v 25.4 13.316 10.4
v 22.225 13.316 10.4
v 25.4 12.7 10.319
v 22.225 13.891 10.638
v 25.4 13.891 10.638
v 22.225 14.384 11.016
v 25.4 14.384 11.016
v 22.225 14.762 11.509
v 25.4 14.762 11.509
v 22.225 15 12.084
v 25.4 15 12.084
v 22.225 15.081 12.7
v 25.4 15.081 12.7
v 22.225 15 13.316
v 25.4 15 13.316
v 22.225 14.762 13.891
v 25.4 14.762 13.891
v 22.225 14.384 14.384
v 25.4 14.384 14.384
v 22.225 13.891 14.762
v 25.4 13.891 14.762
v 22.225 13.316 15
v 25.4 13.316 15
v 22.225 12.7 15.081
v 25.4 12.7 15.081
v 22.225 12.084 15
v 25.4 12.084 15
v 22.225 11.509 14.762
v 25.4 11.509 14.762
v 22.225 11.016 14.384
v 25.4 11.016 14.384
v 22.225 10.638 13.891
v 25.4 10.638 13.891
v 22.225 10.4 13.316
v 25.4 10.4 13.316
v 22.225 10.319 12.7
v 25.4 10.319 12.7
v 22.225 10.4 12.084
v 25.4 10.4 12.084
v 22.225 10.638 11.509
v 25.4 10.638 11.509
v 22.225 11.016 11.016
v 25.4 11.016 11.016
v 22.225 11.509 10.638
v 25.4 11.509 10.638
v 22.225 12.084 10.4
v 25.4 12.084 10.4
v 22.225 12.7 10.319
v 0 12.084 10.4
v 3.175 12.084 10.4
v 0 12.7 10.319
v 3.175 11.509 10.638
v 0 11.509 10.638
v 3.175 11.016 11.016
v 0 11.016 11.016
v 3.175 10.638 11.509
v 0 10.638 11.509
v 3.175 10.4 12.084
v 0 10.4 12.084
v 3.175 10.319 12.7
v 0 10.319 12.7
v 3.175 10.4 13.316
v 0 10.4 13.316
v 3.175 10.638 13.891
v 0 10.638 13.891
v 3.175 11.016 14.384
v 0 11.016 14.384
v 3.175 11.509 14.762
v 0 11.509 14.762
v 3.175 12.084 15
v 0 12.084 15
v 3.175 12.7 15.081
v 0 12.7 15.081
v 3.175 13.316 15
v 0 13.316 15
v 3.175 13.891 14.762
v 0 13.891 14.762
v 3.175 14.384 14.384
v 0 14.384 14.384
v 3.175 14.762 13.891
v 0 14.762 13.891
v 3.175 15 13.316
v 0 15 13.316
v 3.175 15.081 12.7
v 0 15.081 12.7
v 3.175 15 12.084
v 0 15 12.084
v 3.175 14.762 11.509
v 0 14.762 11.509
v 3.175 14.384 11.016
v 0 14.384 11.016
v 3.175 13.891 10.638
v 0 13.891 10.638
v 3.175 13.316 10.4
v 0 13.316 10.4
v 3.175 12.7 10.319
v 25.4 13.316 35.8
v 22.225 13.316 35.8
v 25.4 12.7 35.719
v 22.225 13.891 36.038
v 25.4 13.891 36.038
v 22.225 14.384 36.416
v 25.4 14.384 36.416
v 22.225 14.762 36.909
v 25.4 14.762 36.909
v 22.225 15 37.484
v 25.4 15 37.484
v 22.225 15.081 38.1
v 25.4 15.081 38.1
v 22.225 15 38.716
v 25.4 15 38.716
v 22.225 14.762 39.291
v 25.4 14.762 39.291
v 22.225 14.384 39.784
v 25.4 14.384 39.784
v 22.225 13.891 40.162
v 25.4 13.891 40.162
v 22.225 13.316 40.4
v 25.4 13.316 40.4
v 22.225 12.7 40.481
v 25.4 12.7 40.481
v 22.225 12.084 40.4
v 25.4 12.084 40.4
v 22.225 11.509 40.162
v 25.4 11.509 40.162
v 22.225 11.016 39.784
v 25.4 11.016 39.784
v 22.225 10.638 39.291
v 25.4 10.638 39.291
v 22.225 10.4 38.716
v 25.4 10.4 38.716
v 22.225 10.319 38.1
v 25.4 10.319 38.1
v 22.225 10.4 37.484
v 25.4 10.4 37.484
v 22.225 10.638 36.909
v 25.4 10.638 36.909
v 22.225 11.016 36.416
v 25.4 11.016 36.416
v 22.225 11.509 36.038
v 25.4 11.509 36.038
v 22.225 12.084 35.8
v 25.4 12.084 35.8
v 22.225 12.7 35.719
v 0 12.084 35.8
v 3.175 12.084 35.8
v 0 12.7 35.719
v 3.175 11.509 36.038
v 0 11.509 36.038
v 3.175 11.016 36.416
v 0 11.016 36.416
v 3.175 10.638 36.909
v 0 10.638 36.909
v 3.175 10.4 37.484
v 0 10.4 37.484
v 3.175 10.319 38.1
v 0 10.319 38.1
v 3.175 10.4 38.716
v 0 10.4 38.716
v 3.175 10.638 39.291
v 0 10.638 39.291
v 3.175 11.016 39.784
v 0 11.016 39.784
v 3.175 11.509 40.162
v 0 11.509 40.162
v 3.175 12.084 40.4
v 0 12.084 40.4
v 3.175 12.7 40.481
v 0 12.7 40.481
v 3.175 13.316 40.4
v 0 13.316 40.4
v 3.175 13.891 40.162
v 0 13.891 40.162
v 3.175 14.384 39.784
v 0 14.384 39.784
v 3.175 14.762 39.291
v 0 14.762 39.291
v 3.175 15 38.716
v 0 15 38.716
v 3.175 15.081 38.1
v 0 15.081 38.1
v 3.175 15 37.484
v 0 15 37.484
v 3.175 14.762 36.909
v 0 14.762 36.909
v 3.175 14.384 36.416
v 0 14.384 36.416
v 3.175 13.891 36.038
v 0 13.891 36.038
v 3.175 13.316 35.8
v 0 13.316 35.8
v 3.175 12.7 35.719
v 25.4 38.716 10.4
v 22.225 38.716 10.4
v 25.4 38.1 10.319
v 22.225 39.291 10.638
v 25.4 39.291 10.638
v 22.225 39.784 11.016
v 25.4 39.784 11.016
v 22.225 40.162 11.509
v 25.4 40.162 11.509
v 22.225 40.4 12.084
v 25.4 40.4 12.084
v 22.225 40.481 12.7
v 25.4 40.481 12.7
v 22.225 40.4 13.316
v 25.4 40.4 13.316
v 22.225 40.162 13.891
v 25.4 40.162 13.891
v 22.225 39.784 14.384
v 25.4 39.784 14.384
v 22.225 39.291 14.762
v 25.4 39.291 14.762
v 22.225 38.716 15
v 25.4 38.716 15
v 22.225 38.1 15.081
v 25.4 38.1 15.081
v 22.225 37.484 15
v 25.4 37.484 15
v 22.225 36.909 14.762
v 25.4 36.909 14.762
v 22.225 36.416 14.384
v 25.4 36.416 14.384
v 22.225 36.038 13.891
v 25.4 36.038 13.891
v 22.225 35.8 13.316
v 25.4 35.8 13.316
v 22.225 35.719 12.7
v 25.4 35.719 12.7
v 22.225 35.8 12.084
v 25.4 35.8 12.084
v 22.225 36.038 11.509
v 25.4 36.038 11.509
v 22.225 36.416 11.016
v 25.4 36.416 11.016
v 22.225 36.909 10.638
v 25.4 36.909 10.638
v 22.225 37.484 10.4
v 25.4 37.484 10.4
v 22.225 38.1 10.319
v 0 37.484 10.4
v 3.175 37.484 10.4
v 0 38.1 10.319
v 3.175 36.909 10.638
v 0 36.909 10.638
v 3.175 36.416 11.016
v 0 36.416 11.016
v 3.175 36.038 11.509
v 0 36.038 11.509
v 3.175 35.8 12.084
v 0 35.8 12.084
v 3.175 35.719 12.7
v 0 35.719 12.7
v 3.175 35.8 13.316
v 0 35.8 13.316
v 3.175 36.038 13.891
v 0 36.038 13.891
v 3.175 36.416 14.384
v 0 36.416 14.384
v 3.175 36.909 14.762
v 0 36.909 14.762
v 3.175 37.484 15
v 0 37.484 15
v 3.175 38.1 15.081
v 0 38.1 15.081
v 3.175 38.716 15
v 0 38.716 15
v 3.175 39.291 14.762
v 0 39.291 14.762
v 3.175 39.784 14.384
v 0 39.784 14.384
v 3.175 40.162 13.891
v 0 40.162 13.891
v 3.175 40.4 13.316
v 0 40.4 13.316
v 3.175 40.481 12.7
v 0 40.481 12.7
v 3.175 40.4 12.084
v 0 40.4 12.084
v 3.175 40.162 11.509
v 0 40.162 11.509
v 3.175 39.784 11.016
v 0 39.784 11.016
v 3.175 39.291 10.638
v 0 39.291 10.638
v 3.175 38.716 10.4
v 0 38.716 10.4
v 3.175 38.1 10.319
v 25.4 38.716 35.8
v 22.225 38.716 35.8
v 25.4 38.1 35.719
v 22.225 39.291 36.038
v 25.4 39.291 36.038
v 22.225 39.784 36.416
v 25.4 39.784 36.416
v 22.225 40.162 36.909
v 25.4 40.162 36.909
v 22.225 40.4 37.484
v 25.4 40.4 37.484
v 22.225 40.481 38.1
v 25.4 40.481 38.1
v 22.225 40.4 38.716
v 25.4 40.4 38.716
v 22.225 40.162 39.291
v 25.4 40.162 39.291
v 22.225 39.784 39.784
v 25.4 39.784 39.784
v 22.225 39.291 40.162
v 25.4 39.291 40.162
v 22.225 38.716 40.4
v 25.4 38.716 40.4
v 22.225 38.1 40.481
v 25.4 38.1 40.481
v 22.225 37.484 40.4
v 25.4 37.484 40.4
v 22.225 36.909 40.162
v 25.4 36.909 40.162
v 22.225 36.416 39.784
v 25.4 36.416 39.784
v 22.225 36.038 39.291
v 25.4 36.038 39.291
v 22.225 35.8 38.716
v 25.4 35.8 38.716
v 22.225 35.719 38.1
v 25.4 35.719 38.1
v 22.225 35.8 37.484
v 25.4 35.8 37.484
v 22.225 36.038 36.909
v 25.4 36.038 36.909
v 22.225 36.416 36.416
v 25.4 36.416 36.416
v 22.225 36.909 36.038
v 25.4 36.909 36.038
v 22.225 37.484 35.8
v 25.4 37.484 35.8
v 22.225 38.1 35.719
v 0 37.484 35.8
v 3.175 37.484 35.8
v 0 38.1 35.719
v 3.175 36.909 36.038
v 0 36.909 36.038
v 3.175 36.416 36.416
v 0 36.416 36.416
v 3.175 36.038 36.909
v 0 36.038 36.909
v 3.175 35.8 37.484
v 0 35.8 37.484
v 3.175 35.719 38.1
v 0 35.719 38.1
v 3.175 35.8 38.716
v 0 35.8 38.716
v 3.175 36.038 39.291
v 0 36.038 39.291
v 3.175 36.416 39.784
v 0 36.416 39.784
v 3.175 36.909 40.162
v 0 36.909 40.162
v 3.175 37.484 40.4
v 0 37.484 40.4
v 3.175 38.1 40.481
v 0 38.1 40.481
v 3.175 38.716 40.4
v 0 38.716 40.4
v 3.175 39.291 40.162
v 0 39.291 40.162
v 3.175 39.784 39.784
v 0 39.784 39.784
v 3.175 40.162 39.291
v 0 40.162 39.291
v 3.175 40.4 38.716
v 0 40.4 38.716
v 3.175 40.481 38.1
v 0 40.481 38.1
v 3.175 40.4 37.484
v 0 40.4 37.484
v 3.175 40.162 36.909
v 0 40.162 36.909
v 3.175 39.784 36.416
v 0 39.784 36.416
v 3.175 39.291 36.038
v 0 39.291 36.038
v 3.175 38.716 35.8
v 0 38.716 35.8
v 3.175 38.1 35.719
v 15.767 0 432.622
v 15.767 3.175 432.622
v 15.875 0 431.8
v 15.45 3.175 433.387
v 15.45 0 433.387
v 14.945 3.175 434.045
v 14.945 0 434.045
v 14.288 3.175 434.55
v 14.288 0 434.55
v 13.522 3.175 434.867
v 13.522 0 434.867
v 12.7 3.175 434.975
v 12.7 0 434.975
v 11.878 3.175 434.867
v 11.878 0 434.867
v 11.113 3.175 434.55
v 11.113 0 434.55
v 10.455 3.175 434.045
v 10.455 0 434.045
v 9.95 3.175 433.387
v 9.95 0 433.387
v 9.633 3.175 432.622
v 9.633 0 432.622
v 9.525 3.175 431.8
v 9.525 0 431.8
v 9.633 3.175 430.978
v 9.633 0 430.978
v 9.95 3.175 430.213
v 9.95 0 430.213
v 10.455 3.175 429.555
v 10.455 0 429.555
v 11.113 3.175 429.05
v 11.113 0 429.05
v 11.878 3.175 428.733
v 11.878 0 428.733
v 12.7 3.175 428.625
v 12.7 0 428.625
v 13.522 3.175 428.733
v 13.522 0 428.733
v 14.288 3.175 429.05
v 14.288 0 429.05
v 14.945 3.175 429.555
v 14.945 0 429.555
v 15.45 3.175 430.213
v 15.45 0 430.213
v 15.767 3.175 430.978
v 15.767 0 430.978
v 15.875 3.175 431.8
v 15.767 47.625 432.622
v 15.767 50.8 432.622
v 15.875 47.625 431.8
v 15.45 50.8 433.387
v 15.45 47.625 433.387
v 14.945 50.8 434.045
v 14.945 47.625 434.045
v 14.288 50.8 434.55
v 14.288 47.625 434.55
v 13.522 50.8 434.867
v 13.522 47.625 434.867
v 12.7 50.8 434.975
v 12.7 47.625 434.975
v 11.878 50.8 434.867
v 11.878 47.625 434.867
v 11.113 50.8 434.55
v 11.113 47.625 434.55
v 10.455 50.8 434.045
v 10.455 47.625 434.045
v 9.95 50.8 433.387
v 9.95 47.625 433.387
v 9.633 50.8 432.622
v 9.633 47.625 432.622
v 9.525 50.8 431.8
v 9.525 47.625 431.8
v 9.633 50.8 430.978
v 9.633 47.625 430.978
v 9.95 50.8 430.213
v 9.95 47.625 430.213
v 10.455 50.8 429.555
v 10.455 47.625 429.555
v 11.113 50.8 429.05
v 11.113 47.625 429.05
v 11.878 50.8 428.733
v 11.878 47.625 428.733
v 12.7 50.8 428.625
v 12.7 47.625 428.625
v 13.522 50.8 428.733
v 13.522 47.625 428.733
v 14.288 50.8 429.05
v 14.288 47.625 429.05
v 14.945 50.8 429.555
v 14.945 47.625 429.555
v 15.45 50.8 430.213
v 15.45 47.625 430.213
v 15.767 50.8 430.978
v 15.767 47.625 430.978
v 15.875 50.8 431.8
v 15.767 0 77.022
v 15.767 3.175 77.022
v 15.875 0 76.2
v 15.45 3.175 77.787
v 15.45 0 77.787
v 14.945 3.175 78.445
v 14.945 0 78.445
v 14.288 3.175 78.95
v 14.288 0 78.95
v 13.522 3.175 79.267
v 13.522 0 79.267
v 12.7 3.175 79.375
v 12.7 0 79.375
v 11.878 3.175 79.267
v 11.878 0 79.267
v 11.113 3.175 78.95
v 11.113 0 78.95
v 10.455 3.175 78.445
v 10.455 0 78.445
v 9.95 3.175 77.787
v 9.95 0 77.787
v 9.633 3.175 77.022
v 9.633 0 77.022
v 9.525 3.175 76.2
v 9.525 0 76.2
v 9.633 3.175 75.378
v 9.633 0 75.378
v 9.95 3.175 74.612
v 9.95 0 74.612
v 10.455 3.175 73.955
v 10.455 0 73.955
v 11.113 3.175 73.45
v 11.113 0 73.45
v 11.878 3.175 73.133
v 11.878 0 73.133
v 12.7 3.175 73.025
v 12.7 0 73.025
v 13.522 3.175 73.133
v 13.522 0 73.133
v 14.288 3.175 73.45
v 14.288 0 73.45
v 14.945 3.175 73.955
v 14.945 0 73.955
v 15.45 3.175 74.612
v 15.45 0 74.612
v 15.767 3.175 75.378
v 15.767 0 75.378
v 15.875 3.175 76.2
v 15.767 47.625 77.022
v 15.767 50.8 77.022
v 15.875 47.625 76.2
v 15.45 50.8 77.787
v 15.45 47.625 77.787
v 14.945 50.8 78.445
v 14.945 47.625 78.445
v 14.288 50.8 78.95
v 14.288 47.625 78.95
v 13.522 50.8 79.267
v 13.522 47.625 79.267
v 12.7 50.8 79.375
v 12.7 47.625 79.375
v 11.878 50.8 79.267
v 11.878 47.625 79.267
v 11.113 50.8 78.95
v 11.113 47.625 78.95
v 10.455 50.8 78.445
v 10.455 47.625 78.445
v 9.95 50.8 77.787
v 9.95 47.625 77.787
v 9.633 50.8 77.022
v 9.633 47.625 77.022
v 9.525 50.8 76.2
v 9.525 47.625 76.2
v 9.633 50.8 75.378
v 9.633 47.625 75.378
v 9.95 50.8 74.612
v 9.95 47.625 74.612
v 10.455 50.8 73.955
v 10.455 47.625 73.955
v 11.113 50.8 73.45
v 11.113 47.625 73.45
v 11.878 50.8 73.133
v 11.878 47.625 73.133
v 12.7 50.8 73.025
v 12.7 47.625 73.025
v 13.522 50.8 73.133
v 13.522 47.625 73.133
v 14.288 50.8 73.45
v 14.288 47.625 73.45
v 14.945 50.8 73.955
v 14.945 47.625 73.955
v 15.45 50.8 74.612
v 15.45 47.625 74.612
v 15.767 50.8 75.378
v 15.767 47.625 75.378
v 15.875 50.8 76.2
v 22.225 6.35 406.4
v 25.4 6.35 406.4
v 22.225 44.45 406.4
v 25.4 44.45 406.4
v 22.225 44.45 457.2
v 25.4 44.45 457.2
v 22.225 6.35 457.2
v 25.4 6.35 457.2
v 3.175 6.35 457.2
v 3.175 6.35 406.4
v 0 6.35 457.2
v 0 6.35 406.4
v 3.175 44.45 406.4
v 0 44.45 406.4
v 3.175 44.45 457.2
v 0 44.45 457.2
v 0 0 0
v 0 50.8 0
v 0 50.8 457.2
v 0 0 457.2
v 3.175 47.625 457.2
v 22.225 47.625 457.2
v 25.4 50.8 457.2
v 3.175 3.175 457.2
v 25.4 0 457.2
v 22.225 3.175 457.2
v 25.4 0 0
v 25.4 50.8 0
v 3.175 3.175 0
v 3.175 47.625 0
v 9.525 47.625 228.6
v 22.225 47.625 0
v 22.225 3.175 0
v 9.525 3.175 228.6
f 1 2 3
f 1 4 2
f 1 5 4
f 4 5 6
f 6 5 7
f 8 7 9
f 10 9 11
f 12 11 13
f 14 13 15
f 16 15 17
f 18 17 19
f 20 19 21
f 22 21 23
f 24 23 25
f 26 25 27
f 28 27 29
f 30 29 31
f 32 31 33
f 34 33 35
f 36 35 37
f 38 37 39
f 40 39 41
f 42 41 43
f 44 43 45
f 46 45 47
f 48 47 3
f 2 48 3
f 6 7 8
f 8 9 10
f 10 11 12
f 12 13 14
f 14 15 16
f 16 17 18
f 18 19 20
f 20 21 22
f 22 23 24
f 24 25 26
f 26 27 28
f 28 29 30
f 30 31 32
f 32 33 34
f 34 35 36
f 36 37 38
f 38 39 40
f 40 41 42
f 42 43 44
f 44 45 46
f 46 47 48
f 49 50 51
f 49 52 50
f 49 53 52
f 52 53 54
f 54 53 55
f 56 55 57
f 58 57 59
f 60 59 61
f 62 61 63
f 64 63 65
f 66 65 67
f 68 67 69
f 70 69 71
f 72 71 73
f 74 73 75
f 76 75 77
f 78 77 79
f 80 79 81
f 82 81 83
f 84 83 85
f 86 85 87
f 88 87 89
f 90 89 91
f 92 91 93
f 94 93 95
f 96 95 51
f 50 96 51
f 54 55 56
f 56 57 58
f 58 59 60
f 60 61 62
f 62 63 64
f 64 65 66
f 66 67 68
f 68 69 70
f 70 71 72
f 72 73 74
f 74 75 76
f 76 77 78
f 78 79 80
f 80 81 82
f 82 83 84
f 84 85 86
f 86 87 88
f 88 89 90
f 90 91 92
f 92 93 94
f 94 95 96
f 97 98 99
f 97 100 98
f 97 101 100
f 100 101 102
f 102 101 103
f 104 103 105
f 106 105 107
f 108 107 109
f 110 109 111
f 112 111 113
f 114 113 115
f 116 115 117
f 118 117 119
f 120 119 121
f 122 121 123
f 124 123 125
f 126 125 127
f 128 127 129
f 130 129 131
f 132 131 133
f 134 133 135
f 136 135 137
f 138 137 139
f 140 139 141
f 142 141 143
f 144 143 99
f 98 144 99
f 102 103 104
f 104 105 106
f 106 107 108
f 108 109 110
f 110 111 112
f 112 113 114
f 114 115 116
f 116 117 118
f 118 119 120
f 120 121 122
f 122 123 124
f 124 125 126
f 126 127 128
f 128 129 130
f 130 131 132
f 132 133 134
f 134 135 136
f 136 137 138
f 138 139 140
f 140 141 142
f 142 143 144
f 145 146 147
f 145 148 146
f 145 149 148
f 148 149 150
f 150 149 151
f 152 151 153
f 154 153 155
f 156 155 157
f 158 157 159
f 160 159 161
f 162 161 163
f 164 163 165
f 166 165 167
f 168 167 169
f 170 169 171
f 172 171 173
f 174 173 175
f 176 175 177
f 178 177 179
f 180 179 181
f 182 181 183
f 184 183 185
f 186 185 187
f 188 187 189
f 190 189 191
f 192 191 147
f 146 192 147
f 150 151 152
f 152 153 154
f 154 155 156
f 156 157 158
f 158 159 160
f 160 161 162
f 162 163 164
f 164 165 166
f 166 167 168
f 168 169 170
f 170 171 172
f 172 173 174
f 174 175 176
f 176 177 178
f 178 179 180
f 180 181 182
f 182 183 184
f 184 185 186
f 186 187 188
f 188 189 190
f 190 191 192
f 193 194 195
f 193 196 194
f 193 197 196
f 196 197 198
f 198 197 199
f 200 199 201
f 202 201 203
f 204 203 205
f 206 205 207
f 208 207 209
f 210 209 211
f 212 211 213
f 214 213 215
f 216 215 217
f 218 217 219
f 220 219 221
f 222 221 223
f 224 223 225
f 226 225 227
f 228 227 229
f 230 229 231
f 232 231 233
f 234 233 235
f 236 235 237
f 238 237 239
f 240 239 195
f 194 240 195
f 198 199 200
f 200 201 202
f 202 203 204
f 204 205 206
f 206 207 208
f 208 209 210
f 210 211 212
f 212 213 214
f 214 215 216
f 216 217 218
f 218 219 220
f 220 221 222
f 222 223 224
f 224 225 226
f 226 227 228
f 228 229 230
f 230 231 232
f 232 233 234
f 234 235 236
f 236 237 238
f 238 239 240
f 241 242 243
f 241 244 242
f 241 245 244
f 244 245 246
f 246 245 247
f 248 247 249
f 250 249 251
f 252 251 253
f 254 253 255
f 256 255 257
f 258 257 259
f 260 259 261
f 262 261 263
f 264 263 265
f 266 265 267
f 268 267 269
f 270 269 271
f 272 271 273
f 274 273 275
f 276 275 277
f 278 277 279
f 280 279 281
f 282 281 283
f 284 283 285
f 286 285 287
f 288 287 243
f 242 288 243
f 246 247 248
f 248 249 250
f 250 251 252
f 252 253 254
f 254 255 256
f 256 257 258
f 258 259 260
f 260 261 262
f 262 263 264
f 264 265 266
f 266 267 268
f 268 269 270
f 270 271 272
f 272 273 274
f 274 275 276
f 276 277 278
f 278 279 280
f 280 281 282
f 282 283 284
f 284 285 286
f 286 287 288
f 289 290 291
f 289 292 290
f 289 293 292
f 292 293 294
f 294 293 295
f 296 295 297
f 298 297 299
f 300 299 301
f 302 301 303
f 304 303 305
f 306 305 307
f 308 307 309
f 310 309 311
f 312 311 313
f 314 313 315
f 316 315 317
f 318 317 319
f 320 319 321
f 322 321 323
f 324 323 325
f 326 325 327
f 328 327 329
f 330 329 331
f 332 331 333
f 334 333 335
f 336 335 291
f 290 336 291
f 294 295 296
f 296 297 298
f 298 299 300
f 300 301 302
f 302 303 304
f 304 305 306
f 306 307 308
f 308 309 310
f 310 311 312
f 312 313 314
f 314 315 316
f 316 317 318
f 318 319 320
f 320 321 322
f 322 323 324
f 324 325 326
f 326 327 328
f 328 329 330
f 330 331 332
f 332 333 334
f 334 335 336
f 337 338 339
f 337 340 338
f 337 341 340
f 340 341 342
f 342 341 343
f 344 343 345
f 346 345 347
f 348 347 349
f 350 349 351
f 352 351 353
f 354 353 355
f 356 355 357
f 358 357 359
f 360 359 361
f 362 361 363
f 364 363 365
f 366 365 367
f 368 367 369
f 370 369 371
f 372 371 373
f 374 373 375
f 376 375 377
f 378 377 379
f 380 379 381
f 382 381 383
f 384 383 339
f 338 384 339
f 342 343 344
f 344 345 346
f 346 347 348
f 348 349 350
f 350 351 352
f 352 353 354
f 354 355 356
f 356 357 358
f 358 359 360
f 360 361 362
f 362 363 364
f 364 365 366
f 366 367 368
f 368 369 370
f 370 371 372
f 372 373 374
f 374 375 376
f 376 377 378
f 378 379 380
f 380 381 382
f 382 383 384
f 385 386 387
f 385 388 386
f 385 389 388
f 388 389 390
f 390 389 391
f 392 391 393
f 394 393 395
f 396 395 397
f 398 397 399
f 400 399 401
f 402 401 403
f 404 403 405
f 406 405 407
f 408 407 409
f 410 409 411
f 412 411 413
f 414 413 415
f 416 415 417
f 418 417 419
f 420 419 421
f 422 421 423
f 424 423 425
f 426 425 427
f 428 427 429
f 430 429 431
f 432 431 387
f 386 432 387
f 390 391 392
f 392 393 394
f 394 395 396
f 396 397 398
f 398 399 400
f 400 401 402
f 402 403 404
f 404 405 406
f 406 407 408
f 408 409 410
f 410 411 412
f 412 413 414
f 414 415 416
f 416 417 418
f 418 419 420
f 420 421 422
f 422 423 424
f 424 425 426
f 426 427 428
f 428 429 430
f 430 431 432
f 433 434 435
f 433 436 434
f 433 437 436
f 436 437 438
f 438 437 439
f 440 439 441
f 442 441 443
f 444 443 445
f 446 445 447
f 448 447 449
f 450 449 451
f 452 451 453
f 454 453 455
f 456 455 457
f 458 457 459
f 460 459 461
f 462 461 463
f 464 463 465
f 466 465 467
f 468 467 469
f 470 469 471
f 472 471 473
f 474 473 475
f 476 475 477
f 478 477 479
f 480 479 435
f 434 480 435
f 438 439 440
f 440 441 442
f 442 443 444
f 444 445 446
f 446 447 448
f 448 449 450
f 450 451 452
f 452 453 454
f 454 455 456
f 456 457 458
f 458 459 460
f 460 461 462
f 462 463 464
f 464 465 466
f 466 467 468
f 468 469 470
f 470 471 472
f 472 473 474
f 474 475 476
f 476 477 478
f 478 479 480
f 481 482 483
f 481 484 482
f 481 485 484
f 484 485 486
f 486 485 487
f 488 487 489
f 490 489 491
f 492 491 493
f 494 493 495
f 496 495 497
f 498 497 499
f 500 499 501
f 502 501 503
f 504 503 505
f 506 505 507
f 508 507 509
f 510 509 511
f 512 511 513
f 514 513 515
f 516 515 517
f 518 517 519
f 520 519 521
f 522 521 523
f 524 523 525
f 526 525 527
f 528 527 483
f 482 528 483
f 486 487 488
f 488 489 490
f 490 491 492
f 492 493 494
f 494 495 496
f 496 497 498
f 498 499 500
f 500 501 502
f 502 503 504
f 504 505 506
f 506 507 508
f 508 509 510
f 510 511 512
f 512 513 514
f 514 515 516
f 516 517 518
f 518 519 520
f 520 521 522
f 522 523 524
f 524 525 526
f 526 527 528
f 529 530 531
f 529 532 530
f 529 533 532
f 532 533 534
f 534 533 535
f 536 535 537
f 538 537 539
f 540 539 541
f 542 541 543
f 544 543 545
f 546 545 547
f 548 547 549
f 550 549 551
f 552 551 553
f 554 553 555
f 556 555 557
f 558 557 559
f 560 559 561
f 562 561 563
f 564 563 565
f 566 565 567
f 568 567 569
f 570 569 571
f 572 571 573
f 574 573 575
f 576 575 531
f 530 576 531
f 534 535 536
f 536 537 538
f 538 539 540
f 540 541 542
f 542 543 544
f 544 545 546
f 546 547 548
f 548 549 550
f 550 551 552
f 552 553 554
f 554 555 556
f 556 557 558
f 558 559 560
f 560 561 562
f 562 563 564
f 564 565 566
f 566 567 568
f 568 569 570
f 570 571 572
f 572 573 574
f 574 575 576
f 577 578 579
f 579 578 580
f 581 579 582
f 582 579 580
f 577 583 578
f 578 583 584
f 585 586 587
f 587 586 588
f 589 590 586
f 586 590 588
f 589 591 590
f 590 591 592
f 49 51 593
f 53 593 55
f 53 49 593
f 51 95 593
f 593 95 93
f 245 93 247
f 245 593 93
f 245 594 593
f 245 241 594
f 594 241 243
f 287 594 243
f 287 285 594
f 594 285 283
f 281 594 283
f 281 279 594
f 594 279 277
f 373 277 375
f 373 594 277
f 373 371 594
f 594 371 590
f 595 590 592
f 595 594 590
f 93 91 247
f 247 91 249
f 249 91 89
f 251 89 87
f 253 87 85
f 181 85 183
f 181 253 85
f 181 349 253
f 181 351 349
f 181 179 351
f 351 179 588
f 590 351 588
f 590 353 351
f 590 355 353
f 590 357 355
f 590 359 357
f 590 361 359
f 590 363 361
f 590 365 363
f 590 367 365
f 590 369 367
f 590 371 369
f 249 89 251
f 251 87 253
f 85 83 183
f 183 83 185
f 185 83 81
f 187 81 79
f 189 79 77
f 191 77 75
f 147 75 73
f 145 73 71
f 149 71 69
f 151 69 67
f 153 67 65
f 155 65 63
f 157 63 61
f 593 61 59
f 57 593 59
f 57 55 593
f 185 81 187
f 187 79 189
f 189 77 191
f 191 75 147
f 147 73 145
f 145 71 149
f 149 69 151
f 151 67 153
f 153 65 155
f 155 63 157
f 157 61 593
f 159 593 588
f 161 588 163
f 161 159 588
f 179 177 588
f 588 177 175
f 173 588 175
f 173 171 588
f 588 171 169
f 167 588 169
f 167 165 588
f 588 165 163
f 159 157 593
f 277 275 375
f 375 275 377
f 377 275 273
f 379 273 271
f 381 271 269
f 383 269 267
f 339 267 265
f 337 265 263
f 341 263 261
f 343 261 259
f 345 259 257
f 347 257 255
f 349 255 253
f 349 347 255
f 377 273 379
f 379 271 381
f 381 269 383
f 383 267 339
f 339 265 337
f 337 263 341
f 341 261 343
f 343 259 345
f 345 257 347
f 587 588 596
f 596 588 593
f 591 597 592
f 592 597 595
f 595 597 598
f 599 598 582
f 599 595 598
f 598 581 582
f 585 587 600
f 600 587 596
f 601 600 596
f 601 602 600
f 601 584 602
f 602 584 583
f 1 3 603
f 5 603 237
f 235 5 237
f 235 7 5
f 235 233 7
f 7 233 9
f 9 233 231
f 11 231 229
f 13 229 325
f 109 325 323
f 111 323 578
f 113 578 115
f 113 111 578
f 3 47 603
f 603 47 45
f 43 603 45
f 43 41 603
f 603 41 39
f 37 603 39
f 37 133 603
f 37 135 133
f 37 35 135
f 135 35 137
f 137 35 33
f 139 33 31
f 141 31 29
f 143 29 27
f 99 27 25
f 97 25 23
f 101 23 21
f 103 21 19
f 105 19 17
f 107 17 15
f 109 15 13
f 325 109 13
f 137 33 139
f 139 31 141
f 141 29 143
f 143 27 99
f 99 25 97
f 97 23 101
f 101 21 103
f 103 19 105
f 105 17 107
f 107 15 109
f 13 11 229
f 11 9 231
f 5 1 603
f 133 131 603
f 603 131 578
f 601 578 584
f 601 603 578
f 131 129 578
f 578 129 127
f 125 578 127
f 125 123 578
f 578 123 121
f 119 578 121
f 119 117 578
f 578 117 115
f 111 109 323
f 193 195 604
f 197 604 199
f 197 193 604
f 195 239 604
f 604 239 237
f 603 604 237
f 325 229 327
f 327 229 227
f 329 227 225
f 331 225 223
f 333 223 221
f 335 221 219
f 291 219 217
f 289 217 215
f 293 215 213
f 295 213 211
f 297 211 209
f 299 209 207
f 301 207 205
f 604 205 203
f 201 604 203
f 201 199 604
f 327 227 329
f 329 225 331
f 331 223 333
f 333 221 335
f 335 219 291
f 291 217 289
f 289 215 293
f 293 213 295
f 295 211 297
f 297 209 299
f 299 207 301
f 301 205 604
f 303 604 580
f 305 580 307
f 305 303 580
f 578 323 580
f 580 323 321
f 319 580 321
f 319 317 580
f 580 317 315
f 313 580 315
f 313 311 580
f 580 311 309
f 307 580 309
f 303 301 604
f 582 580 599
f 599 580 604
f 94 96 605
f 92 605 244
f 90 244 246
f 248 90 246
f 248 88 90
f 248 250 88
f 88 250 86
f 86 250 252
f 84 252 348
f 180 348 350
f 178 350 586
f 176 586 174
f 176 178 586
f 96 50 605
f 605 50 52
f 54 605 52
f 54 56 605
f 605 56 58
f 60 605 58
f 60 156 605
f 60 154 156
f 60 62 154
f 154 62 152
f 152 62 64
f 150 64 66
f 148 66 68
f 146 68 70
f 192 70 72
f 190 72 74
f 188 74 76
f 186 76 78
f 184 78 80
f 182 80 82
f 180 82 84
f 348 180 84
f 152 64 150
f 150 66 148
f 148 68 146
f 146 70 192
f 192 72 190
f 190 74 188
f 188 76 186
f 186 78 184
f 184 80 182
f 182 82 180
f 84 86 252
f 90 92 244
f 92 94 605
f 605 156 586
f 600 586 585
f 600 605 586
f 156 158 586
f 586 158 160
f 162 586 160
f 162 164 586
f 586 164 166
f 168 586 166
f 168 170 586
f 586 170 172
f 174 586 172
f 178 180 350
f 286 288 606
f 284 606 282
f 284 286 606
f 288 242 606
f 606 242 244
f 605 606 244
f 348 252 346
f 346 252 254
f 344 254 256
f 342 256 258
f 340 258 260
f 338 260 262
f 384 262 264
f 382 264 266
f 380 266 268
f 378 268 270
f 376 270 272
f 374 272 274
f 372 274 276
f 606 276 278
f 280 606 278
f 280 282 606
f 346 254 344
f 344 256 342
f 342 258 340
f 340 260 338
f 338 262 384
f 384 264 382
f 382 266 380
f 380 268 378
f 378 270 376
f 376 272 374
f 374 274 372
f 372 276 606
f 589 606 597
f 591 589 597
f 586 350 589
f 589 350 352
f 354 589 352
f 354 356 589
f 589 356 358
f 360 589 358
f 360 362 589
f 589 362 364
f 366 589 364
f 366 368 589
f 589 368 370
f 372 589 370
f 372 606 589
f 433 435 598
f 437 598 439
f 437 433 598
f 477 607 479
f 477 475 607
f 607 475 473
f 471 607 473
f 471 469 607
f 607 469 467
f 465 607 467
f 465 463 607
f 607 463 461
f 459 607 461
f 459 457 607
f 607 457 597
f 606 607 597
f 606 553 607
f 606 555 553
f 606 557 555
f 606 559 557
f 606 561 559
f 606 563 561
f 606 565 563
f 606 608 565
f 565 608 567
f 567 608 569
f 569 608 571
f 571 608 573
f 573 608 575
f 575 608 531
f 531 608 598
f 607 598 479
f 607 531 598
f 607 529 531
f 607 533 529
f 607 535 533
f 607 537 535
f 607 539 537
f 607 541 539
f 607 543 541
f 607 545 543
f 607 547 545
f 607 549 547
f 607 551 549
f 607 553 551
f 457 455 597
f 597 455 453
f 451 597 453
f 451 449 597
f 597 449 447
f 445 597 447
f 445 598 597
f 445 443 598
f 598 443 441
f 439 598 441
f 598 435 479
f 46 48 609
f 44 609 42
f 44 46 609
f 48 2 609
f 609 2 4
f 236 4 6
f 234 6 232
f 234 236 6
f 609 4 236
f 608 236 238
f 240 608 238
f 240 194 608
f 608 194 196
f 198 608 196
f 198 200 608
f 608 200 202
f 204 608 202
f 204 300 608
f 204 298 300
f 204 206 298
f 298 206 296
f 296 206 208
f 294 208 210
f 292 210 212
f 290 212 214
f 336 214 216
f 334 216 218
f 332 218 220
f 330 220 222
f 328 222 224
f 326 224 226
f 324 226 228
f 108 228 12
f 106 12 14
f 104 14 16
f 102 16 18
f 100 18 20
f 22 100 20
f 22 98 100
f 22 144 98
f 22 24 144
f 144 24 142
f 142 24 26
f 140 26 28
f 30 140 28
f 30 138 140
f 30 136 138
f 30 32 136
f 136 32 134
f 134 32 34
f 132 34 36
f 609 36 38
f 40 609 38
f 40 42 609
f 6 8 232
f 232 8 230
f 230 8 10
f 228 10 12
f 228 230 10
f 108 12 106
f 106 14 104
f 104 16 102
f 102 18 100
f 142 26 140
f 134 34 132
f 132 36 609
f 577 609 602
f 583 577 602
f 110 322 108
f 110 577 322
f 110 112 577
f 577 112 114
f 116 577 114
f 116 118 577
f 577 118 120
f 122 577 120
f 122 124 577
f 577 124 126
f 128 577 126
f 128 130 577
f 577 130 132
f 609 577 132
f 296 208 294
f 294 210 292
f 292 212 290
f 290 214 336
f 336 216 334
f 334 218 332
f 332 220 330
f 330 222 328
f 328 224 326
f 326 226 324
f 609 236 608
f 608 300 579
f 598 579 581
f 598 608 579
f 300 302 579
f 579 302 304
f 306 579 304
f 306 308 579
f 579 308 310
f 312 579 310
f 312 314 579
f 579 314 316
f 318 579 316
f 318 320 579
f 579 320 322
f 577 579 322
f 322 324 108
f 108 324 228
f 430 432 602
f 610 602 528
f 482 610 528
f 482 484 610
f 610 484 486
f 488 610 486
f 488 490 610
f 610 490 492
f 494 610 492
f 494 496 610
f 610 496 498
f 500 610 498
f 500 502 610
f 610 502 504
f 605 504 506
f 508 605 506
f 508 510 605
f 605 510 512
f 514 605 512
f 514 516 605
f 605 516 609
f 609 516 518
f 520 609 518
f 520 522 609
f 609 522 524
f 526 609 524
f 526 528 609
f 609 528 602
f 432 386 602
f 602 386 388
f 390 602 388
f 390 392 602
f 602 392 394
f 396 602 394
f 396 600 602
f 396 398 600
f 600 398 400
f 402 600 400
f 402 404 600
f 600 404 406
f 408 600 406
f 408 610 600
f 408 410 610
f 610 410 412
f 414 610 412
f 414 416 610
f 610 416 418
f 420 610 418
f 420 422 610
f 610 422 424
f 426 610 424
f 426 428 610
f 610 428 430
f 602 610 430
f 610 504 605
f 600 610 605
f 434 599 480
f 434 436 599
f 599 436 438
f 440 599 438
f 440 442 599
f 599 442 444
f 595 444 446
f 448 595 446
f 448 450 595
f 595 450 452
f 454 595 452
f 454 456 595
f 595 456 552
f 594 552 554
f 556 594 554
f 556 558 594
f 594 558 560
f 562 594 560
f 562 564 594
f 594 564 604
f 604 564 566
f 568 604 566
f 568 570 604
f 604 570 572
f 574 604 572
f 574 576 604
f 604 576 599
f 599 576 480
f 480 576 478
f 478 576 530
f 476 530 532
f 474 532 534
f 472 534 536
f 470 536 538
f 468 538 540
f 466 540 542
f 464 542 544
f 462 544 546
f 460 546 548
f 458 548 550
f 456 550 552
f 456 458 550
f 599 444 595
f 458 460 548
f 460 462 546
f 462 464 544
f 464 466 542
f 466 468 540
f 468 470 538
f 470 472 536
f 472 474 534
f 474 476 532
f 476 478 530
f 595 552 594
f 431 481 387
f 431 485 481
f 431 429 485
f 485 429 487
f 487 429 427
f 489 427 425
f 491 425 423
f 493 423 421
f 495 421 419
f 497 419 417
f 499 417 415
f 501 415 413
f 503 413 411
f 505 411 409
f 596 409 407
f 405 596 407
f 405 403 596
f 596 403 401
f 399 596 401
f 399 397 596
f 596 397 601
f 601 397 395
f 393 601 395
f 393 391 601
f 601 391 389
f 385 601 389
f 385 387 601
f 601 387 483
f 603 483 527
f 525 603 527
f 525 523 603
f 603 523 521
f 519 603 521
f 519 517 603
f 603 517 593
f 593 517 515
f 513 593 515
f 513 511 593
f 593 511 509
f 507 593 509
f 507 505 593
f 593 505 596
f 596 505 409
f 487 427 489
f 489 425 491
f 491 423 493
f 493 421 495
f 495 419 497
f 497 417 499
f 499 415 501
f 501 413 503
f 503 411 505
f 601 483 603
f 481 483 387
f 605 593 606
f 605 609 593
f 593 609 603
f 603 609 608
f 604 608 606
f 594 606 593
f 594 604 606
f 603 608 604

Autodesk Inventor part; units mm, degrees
ref_plane "YZ Plane" through (0, 0, 0) normal (1, 0, 0) x (0, 1, 0)
ref_plane "XZ Plane" through (0, 0, 0) normal (0, 1, 0) x (-1, 0, 0)
ref_plane "XY Plane" through (0, 0, 0) normal (0, 0, 1) x (1, 0, 0)
sketch "Sketch1" plane through (0, 0, 0) normal (0, 0, 1) x (1, 0, 0)
  line L0 (0, 0) -> (25.4, 0)
  line L1 (25.4, 0) -> (25.4, 50.8)
  line L2 (25.4, 50.8) -> (0, 50.8)
  line L3 (0, 50.8) -> (0, 0)
  dimension "d0" = 25.4
  dimension "d1" = 50.8
extrude "Extrusion1" add sketch "Sketch1" along normal blind 457.2
shell "Shell1" thickness 3.175 removed faces 2 at (8.4667, 33.8667, 0) at (8.4667, 33.8667, 457.2)
sketch "Sketch2" plane through (25.4, 0, 0) normal (1, 0, 0) x (0, 0, -1)
  line L0 (0, 50.8) -> (-457.2, 50.8) projected
  line L1 (-457.2, 44.45) -> (-406.4, 44.45)
  line L2 (-406.4, 44.45) -> (-406.4, 6.35)
  line L3 (-406.4, 6.35) -> (-457.2, 6.35)
  line L4 (-457.2, 6.35) -> (-457.2, 44.45)
  line L5 (0, 0) -> (0, 50.8) projected
  dimension "d24" = 38.1
  dimension "d26" = 6.35
  dimension "d27" = 406.4
  dimension "d28" = 50.8
extrude "Extrusion2" cut sketch "Sketch2" against normal through all
sketch "Sketch3" plane through (0, 50.8, 0) normal (0, 1, 0) x (1, 0, 0)
  line L0 (0, -457.2) -> (25.4, -457.2) projected
  line L1 (25.4, 0) -> (25.4, -457.2) projected
  line L2 (25.4, 0) -> (0, 0) projected
  line L3 (0, 0) -> (0, -457.2) projected
  circle A0 centre (12.7, -76.2) radius 3.175
  circle A1 centre (12.7, -431.8) radius 3.175
  dimension "d15" = 12.7
  dimension "d16" = 76.2
  dimension "d17" = 6.35
  dimension "d18" = 12.7
  dimension "d19" = 6.35
  dimension "d20" = 25.4
extrude "Extrusion3" cut sketch "Sketch3" against normal through all contours A0 | A1
sketch "Sketch4" plane through (25.4, 0, 0) normal (1, 0, 0) x (0, 0, -1)
  line L0 (0, 0) -> (0, 50.8) projected
  line L1 (0, 50.8) -> (-457.2, 50.8) projected
  circle A0 centre (-38.1, 38.1) radius 2.3813
  circle A1 centre (-12.7, 38.1) radius 2.3813
  circle A2 centre (-38.1, 12.7) radius 2.3813
  circle A3 centre (-12.7, 12.7) radius 2.3813
  line L2 (-38.1, 38.1) -> (-12.7, 38.1) construction
  line L3 (-12.7, 38.1) -> (-12.7, 12.7) construction
  line L4 (-12.7, 12.7) -> (-38.1, 12.7) construction
  line L5 (-38.1, 12.7) -> (-38.1, 38.1) construction
  dimension "d29" = 4.7625
  dimension "d30" = 12.7
  dimension "d31" = 25.4
  dimension "d32" = 25.4
  dimension "d33" = 12.7
extrude "Extrusion4" cut sketch "Sketch4" against normal through all
properties part number "Frame_UpperRollerMount"
